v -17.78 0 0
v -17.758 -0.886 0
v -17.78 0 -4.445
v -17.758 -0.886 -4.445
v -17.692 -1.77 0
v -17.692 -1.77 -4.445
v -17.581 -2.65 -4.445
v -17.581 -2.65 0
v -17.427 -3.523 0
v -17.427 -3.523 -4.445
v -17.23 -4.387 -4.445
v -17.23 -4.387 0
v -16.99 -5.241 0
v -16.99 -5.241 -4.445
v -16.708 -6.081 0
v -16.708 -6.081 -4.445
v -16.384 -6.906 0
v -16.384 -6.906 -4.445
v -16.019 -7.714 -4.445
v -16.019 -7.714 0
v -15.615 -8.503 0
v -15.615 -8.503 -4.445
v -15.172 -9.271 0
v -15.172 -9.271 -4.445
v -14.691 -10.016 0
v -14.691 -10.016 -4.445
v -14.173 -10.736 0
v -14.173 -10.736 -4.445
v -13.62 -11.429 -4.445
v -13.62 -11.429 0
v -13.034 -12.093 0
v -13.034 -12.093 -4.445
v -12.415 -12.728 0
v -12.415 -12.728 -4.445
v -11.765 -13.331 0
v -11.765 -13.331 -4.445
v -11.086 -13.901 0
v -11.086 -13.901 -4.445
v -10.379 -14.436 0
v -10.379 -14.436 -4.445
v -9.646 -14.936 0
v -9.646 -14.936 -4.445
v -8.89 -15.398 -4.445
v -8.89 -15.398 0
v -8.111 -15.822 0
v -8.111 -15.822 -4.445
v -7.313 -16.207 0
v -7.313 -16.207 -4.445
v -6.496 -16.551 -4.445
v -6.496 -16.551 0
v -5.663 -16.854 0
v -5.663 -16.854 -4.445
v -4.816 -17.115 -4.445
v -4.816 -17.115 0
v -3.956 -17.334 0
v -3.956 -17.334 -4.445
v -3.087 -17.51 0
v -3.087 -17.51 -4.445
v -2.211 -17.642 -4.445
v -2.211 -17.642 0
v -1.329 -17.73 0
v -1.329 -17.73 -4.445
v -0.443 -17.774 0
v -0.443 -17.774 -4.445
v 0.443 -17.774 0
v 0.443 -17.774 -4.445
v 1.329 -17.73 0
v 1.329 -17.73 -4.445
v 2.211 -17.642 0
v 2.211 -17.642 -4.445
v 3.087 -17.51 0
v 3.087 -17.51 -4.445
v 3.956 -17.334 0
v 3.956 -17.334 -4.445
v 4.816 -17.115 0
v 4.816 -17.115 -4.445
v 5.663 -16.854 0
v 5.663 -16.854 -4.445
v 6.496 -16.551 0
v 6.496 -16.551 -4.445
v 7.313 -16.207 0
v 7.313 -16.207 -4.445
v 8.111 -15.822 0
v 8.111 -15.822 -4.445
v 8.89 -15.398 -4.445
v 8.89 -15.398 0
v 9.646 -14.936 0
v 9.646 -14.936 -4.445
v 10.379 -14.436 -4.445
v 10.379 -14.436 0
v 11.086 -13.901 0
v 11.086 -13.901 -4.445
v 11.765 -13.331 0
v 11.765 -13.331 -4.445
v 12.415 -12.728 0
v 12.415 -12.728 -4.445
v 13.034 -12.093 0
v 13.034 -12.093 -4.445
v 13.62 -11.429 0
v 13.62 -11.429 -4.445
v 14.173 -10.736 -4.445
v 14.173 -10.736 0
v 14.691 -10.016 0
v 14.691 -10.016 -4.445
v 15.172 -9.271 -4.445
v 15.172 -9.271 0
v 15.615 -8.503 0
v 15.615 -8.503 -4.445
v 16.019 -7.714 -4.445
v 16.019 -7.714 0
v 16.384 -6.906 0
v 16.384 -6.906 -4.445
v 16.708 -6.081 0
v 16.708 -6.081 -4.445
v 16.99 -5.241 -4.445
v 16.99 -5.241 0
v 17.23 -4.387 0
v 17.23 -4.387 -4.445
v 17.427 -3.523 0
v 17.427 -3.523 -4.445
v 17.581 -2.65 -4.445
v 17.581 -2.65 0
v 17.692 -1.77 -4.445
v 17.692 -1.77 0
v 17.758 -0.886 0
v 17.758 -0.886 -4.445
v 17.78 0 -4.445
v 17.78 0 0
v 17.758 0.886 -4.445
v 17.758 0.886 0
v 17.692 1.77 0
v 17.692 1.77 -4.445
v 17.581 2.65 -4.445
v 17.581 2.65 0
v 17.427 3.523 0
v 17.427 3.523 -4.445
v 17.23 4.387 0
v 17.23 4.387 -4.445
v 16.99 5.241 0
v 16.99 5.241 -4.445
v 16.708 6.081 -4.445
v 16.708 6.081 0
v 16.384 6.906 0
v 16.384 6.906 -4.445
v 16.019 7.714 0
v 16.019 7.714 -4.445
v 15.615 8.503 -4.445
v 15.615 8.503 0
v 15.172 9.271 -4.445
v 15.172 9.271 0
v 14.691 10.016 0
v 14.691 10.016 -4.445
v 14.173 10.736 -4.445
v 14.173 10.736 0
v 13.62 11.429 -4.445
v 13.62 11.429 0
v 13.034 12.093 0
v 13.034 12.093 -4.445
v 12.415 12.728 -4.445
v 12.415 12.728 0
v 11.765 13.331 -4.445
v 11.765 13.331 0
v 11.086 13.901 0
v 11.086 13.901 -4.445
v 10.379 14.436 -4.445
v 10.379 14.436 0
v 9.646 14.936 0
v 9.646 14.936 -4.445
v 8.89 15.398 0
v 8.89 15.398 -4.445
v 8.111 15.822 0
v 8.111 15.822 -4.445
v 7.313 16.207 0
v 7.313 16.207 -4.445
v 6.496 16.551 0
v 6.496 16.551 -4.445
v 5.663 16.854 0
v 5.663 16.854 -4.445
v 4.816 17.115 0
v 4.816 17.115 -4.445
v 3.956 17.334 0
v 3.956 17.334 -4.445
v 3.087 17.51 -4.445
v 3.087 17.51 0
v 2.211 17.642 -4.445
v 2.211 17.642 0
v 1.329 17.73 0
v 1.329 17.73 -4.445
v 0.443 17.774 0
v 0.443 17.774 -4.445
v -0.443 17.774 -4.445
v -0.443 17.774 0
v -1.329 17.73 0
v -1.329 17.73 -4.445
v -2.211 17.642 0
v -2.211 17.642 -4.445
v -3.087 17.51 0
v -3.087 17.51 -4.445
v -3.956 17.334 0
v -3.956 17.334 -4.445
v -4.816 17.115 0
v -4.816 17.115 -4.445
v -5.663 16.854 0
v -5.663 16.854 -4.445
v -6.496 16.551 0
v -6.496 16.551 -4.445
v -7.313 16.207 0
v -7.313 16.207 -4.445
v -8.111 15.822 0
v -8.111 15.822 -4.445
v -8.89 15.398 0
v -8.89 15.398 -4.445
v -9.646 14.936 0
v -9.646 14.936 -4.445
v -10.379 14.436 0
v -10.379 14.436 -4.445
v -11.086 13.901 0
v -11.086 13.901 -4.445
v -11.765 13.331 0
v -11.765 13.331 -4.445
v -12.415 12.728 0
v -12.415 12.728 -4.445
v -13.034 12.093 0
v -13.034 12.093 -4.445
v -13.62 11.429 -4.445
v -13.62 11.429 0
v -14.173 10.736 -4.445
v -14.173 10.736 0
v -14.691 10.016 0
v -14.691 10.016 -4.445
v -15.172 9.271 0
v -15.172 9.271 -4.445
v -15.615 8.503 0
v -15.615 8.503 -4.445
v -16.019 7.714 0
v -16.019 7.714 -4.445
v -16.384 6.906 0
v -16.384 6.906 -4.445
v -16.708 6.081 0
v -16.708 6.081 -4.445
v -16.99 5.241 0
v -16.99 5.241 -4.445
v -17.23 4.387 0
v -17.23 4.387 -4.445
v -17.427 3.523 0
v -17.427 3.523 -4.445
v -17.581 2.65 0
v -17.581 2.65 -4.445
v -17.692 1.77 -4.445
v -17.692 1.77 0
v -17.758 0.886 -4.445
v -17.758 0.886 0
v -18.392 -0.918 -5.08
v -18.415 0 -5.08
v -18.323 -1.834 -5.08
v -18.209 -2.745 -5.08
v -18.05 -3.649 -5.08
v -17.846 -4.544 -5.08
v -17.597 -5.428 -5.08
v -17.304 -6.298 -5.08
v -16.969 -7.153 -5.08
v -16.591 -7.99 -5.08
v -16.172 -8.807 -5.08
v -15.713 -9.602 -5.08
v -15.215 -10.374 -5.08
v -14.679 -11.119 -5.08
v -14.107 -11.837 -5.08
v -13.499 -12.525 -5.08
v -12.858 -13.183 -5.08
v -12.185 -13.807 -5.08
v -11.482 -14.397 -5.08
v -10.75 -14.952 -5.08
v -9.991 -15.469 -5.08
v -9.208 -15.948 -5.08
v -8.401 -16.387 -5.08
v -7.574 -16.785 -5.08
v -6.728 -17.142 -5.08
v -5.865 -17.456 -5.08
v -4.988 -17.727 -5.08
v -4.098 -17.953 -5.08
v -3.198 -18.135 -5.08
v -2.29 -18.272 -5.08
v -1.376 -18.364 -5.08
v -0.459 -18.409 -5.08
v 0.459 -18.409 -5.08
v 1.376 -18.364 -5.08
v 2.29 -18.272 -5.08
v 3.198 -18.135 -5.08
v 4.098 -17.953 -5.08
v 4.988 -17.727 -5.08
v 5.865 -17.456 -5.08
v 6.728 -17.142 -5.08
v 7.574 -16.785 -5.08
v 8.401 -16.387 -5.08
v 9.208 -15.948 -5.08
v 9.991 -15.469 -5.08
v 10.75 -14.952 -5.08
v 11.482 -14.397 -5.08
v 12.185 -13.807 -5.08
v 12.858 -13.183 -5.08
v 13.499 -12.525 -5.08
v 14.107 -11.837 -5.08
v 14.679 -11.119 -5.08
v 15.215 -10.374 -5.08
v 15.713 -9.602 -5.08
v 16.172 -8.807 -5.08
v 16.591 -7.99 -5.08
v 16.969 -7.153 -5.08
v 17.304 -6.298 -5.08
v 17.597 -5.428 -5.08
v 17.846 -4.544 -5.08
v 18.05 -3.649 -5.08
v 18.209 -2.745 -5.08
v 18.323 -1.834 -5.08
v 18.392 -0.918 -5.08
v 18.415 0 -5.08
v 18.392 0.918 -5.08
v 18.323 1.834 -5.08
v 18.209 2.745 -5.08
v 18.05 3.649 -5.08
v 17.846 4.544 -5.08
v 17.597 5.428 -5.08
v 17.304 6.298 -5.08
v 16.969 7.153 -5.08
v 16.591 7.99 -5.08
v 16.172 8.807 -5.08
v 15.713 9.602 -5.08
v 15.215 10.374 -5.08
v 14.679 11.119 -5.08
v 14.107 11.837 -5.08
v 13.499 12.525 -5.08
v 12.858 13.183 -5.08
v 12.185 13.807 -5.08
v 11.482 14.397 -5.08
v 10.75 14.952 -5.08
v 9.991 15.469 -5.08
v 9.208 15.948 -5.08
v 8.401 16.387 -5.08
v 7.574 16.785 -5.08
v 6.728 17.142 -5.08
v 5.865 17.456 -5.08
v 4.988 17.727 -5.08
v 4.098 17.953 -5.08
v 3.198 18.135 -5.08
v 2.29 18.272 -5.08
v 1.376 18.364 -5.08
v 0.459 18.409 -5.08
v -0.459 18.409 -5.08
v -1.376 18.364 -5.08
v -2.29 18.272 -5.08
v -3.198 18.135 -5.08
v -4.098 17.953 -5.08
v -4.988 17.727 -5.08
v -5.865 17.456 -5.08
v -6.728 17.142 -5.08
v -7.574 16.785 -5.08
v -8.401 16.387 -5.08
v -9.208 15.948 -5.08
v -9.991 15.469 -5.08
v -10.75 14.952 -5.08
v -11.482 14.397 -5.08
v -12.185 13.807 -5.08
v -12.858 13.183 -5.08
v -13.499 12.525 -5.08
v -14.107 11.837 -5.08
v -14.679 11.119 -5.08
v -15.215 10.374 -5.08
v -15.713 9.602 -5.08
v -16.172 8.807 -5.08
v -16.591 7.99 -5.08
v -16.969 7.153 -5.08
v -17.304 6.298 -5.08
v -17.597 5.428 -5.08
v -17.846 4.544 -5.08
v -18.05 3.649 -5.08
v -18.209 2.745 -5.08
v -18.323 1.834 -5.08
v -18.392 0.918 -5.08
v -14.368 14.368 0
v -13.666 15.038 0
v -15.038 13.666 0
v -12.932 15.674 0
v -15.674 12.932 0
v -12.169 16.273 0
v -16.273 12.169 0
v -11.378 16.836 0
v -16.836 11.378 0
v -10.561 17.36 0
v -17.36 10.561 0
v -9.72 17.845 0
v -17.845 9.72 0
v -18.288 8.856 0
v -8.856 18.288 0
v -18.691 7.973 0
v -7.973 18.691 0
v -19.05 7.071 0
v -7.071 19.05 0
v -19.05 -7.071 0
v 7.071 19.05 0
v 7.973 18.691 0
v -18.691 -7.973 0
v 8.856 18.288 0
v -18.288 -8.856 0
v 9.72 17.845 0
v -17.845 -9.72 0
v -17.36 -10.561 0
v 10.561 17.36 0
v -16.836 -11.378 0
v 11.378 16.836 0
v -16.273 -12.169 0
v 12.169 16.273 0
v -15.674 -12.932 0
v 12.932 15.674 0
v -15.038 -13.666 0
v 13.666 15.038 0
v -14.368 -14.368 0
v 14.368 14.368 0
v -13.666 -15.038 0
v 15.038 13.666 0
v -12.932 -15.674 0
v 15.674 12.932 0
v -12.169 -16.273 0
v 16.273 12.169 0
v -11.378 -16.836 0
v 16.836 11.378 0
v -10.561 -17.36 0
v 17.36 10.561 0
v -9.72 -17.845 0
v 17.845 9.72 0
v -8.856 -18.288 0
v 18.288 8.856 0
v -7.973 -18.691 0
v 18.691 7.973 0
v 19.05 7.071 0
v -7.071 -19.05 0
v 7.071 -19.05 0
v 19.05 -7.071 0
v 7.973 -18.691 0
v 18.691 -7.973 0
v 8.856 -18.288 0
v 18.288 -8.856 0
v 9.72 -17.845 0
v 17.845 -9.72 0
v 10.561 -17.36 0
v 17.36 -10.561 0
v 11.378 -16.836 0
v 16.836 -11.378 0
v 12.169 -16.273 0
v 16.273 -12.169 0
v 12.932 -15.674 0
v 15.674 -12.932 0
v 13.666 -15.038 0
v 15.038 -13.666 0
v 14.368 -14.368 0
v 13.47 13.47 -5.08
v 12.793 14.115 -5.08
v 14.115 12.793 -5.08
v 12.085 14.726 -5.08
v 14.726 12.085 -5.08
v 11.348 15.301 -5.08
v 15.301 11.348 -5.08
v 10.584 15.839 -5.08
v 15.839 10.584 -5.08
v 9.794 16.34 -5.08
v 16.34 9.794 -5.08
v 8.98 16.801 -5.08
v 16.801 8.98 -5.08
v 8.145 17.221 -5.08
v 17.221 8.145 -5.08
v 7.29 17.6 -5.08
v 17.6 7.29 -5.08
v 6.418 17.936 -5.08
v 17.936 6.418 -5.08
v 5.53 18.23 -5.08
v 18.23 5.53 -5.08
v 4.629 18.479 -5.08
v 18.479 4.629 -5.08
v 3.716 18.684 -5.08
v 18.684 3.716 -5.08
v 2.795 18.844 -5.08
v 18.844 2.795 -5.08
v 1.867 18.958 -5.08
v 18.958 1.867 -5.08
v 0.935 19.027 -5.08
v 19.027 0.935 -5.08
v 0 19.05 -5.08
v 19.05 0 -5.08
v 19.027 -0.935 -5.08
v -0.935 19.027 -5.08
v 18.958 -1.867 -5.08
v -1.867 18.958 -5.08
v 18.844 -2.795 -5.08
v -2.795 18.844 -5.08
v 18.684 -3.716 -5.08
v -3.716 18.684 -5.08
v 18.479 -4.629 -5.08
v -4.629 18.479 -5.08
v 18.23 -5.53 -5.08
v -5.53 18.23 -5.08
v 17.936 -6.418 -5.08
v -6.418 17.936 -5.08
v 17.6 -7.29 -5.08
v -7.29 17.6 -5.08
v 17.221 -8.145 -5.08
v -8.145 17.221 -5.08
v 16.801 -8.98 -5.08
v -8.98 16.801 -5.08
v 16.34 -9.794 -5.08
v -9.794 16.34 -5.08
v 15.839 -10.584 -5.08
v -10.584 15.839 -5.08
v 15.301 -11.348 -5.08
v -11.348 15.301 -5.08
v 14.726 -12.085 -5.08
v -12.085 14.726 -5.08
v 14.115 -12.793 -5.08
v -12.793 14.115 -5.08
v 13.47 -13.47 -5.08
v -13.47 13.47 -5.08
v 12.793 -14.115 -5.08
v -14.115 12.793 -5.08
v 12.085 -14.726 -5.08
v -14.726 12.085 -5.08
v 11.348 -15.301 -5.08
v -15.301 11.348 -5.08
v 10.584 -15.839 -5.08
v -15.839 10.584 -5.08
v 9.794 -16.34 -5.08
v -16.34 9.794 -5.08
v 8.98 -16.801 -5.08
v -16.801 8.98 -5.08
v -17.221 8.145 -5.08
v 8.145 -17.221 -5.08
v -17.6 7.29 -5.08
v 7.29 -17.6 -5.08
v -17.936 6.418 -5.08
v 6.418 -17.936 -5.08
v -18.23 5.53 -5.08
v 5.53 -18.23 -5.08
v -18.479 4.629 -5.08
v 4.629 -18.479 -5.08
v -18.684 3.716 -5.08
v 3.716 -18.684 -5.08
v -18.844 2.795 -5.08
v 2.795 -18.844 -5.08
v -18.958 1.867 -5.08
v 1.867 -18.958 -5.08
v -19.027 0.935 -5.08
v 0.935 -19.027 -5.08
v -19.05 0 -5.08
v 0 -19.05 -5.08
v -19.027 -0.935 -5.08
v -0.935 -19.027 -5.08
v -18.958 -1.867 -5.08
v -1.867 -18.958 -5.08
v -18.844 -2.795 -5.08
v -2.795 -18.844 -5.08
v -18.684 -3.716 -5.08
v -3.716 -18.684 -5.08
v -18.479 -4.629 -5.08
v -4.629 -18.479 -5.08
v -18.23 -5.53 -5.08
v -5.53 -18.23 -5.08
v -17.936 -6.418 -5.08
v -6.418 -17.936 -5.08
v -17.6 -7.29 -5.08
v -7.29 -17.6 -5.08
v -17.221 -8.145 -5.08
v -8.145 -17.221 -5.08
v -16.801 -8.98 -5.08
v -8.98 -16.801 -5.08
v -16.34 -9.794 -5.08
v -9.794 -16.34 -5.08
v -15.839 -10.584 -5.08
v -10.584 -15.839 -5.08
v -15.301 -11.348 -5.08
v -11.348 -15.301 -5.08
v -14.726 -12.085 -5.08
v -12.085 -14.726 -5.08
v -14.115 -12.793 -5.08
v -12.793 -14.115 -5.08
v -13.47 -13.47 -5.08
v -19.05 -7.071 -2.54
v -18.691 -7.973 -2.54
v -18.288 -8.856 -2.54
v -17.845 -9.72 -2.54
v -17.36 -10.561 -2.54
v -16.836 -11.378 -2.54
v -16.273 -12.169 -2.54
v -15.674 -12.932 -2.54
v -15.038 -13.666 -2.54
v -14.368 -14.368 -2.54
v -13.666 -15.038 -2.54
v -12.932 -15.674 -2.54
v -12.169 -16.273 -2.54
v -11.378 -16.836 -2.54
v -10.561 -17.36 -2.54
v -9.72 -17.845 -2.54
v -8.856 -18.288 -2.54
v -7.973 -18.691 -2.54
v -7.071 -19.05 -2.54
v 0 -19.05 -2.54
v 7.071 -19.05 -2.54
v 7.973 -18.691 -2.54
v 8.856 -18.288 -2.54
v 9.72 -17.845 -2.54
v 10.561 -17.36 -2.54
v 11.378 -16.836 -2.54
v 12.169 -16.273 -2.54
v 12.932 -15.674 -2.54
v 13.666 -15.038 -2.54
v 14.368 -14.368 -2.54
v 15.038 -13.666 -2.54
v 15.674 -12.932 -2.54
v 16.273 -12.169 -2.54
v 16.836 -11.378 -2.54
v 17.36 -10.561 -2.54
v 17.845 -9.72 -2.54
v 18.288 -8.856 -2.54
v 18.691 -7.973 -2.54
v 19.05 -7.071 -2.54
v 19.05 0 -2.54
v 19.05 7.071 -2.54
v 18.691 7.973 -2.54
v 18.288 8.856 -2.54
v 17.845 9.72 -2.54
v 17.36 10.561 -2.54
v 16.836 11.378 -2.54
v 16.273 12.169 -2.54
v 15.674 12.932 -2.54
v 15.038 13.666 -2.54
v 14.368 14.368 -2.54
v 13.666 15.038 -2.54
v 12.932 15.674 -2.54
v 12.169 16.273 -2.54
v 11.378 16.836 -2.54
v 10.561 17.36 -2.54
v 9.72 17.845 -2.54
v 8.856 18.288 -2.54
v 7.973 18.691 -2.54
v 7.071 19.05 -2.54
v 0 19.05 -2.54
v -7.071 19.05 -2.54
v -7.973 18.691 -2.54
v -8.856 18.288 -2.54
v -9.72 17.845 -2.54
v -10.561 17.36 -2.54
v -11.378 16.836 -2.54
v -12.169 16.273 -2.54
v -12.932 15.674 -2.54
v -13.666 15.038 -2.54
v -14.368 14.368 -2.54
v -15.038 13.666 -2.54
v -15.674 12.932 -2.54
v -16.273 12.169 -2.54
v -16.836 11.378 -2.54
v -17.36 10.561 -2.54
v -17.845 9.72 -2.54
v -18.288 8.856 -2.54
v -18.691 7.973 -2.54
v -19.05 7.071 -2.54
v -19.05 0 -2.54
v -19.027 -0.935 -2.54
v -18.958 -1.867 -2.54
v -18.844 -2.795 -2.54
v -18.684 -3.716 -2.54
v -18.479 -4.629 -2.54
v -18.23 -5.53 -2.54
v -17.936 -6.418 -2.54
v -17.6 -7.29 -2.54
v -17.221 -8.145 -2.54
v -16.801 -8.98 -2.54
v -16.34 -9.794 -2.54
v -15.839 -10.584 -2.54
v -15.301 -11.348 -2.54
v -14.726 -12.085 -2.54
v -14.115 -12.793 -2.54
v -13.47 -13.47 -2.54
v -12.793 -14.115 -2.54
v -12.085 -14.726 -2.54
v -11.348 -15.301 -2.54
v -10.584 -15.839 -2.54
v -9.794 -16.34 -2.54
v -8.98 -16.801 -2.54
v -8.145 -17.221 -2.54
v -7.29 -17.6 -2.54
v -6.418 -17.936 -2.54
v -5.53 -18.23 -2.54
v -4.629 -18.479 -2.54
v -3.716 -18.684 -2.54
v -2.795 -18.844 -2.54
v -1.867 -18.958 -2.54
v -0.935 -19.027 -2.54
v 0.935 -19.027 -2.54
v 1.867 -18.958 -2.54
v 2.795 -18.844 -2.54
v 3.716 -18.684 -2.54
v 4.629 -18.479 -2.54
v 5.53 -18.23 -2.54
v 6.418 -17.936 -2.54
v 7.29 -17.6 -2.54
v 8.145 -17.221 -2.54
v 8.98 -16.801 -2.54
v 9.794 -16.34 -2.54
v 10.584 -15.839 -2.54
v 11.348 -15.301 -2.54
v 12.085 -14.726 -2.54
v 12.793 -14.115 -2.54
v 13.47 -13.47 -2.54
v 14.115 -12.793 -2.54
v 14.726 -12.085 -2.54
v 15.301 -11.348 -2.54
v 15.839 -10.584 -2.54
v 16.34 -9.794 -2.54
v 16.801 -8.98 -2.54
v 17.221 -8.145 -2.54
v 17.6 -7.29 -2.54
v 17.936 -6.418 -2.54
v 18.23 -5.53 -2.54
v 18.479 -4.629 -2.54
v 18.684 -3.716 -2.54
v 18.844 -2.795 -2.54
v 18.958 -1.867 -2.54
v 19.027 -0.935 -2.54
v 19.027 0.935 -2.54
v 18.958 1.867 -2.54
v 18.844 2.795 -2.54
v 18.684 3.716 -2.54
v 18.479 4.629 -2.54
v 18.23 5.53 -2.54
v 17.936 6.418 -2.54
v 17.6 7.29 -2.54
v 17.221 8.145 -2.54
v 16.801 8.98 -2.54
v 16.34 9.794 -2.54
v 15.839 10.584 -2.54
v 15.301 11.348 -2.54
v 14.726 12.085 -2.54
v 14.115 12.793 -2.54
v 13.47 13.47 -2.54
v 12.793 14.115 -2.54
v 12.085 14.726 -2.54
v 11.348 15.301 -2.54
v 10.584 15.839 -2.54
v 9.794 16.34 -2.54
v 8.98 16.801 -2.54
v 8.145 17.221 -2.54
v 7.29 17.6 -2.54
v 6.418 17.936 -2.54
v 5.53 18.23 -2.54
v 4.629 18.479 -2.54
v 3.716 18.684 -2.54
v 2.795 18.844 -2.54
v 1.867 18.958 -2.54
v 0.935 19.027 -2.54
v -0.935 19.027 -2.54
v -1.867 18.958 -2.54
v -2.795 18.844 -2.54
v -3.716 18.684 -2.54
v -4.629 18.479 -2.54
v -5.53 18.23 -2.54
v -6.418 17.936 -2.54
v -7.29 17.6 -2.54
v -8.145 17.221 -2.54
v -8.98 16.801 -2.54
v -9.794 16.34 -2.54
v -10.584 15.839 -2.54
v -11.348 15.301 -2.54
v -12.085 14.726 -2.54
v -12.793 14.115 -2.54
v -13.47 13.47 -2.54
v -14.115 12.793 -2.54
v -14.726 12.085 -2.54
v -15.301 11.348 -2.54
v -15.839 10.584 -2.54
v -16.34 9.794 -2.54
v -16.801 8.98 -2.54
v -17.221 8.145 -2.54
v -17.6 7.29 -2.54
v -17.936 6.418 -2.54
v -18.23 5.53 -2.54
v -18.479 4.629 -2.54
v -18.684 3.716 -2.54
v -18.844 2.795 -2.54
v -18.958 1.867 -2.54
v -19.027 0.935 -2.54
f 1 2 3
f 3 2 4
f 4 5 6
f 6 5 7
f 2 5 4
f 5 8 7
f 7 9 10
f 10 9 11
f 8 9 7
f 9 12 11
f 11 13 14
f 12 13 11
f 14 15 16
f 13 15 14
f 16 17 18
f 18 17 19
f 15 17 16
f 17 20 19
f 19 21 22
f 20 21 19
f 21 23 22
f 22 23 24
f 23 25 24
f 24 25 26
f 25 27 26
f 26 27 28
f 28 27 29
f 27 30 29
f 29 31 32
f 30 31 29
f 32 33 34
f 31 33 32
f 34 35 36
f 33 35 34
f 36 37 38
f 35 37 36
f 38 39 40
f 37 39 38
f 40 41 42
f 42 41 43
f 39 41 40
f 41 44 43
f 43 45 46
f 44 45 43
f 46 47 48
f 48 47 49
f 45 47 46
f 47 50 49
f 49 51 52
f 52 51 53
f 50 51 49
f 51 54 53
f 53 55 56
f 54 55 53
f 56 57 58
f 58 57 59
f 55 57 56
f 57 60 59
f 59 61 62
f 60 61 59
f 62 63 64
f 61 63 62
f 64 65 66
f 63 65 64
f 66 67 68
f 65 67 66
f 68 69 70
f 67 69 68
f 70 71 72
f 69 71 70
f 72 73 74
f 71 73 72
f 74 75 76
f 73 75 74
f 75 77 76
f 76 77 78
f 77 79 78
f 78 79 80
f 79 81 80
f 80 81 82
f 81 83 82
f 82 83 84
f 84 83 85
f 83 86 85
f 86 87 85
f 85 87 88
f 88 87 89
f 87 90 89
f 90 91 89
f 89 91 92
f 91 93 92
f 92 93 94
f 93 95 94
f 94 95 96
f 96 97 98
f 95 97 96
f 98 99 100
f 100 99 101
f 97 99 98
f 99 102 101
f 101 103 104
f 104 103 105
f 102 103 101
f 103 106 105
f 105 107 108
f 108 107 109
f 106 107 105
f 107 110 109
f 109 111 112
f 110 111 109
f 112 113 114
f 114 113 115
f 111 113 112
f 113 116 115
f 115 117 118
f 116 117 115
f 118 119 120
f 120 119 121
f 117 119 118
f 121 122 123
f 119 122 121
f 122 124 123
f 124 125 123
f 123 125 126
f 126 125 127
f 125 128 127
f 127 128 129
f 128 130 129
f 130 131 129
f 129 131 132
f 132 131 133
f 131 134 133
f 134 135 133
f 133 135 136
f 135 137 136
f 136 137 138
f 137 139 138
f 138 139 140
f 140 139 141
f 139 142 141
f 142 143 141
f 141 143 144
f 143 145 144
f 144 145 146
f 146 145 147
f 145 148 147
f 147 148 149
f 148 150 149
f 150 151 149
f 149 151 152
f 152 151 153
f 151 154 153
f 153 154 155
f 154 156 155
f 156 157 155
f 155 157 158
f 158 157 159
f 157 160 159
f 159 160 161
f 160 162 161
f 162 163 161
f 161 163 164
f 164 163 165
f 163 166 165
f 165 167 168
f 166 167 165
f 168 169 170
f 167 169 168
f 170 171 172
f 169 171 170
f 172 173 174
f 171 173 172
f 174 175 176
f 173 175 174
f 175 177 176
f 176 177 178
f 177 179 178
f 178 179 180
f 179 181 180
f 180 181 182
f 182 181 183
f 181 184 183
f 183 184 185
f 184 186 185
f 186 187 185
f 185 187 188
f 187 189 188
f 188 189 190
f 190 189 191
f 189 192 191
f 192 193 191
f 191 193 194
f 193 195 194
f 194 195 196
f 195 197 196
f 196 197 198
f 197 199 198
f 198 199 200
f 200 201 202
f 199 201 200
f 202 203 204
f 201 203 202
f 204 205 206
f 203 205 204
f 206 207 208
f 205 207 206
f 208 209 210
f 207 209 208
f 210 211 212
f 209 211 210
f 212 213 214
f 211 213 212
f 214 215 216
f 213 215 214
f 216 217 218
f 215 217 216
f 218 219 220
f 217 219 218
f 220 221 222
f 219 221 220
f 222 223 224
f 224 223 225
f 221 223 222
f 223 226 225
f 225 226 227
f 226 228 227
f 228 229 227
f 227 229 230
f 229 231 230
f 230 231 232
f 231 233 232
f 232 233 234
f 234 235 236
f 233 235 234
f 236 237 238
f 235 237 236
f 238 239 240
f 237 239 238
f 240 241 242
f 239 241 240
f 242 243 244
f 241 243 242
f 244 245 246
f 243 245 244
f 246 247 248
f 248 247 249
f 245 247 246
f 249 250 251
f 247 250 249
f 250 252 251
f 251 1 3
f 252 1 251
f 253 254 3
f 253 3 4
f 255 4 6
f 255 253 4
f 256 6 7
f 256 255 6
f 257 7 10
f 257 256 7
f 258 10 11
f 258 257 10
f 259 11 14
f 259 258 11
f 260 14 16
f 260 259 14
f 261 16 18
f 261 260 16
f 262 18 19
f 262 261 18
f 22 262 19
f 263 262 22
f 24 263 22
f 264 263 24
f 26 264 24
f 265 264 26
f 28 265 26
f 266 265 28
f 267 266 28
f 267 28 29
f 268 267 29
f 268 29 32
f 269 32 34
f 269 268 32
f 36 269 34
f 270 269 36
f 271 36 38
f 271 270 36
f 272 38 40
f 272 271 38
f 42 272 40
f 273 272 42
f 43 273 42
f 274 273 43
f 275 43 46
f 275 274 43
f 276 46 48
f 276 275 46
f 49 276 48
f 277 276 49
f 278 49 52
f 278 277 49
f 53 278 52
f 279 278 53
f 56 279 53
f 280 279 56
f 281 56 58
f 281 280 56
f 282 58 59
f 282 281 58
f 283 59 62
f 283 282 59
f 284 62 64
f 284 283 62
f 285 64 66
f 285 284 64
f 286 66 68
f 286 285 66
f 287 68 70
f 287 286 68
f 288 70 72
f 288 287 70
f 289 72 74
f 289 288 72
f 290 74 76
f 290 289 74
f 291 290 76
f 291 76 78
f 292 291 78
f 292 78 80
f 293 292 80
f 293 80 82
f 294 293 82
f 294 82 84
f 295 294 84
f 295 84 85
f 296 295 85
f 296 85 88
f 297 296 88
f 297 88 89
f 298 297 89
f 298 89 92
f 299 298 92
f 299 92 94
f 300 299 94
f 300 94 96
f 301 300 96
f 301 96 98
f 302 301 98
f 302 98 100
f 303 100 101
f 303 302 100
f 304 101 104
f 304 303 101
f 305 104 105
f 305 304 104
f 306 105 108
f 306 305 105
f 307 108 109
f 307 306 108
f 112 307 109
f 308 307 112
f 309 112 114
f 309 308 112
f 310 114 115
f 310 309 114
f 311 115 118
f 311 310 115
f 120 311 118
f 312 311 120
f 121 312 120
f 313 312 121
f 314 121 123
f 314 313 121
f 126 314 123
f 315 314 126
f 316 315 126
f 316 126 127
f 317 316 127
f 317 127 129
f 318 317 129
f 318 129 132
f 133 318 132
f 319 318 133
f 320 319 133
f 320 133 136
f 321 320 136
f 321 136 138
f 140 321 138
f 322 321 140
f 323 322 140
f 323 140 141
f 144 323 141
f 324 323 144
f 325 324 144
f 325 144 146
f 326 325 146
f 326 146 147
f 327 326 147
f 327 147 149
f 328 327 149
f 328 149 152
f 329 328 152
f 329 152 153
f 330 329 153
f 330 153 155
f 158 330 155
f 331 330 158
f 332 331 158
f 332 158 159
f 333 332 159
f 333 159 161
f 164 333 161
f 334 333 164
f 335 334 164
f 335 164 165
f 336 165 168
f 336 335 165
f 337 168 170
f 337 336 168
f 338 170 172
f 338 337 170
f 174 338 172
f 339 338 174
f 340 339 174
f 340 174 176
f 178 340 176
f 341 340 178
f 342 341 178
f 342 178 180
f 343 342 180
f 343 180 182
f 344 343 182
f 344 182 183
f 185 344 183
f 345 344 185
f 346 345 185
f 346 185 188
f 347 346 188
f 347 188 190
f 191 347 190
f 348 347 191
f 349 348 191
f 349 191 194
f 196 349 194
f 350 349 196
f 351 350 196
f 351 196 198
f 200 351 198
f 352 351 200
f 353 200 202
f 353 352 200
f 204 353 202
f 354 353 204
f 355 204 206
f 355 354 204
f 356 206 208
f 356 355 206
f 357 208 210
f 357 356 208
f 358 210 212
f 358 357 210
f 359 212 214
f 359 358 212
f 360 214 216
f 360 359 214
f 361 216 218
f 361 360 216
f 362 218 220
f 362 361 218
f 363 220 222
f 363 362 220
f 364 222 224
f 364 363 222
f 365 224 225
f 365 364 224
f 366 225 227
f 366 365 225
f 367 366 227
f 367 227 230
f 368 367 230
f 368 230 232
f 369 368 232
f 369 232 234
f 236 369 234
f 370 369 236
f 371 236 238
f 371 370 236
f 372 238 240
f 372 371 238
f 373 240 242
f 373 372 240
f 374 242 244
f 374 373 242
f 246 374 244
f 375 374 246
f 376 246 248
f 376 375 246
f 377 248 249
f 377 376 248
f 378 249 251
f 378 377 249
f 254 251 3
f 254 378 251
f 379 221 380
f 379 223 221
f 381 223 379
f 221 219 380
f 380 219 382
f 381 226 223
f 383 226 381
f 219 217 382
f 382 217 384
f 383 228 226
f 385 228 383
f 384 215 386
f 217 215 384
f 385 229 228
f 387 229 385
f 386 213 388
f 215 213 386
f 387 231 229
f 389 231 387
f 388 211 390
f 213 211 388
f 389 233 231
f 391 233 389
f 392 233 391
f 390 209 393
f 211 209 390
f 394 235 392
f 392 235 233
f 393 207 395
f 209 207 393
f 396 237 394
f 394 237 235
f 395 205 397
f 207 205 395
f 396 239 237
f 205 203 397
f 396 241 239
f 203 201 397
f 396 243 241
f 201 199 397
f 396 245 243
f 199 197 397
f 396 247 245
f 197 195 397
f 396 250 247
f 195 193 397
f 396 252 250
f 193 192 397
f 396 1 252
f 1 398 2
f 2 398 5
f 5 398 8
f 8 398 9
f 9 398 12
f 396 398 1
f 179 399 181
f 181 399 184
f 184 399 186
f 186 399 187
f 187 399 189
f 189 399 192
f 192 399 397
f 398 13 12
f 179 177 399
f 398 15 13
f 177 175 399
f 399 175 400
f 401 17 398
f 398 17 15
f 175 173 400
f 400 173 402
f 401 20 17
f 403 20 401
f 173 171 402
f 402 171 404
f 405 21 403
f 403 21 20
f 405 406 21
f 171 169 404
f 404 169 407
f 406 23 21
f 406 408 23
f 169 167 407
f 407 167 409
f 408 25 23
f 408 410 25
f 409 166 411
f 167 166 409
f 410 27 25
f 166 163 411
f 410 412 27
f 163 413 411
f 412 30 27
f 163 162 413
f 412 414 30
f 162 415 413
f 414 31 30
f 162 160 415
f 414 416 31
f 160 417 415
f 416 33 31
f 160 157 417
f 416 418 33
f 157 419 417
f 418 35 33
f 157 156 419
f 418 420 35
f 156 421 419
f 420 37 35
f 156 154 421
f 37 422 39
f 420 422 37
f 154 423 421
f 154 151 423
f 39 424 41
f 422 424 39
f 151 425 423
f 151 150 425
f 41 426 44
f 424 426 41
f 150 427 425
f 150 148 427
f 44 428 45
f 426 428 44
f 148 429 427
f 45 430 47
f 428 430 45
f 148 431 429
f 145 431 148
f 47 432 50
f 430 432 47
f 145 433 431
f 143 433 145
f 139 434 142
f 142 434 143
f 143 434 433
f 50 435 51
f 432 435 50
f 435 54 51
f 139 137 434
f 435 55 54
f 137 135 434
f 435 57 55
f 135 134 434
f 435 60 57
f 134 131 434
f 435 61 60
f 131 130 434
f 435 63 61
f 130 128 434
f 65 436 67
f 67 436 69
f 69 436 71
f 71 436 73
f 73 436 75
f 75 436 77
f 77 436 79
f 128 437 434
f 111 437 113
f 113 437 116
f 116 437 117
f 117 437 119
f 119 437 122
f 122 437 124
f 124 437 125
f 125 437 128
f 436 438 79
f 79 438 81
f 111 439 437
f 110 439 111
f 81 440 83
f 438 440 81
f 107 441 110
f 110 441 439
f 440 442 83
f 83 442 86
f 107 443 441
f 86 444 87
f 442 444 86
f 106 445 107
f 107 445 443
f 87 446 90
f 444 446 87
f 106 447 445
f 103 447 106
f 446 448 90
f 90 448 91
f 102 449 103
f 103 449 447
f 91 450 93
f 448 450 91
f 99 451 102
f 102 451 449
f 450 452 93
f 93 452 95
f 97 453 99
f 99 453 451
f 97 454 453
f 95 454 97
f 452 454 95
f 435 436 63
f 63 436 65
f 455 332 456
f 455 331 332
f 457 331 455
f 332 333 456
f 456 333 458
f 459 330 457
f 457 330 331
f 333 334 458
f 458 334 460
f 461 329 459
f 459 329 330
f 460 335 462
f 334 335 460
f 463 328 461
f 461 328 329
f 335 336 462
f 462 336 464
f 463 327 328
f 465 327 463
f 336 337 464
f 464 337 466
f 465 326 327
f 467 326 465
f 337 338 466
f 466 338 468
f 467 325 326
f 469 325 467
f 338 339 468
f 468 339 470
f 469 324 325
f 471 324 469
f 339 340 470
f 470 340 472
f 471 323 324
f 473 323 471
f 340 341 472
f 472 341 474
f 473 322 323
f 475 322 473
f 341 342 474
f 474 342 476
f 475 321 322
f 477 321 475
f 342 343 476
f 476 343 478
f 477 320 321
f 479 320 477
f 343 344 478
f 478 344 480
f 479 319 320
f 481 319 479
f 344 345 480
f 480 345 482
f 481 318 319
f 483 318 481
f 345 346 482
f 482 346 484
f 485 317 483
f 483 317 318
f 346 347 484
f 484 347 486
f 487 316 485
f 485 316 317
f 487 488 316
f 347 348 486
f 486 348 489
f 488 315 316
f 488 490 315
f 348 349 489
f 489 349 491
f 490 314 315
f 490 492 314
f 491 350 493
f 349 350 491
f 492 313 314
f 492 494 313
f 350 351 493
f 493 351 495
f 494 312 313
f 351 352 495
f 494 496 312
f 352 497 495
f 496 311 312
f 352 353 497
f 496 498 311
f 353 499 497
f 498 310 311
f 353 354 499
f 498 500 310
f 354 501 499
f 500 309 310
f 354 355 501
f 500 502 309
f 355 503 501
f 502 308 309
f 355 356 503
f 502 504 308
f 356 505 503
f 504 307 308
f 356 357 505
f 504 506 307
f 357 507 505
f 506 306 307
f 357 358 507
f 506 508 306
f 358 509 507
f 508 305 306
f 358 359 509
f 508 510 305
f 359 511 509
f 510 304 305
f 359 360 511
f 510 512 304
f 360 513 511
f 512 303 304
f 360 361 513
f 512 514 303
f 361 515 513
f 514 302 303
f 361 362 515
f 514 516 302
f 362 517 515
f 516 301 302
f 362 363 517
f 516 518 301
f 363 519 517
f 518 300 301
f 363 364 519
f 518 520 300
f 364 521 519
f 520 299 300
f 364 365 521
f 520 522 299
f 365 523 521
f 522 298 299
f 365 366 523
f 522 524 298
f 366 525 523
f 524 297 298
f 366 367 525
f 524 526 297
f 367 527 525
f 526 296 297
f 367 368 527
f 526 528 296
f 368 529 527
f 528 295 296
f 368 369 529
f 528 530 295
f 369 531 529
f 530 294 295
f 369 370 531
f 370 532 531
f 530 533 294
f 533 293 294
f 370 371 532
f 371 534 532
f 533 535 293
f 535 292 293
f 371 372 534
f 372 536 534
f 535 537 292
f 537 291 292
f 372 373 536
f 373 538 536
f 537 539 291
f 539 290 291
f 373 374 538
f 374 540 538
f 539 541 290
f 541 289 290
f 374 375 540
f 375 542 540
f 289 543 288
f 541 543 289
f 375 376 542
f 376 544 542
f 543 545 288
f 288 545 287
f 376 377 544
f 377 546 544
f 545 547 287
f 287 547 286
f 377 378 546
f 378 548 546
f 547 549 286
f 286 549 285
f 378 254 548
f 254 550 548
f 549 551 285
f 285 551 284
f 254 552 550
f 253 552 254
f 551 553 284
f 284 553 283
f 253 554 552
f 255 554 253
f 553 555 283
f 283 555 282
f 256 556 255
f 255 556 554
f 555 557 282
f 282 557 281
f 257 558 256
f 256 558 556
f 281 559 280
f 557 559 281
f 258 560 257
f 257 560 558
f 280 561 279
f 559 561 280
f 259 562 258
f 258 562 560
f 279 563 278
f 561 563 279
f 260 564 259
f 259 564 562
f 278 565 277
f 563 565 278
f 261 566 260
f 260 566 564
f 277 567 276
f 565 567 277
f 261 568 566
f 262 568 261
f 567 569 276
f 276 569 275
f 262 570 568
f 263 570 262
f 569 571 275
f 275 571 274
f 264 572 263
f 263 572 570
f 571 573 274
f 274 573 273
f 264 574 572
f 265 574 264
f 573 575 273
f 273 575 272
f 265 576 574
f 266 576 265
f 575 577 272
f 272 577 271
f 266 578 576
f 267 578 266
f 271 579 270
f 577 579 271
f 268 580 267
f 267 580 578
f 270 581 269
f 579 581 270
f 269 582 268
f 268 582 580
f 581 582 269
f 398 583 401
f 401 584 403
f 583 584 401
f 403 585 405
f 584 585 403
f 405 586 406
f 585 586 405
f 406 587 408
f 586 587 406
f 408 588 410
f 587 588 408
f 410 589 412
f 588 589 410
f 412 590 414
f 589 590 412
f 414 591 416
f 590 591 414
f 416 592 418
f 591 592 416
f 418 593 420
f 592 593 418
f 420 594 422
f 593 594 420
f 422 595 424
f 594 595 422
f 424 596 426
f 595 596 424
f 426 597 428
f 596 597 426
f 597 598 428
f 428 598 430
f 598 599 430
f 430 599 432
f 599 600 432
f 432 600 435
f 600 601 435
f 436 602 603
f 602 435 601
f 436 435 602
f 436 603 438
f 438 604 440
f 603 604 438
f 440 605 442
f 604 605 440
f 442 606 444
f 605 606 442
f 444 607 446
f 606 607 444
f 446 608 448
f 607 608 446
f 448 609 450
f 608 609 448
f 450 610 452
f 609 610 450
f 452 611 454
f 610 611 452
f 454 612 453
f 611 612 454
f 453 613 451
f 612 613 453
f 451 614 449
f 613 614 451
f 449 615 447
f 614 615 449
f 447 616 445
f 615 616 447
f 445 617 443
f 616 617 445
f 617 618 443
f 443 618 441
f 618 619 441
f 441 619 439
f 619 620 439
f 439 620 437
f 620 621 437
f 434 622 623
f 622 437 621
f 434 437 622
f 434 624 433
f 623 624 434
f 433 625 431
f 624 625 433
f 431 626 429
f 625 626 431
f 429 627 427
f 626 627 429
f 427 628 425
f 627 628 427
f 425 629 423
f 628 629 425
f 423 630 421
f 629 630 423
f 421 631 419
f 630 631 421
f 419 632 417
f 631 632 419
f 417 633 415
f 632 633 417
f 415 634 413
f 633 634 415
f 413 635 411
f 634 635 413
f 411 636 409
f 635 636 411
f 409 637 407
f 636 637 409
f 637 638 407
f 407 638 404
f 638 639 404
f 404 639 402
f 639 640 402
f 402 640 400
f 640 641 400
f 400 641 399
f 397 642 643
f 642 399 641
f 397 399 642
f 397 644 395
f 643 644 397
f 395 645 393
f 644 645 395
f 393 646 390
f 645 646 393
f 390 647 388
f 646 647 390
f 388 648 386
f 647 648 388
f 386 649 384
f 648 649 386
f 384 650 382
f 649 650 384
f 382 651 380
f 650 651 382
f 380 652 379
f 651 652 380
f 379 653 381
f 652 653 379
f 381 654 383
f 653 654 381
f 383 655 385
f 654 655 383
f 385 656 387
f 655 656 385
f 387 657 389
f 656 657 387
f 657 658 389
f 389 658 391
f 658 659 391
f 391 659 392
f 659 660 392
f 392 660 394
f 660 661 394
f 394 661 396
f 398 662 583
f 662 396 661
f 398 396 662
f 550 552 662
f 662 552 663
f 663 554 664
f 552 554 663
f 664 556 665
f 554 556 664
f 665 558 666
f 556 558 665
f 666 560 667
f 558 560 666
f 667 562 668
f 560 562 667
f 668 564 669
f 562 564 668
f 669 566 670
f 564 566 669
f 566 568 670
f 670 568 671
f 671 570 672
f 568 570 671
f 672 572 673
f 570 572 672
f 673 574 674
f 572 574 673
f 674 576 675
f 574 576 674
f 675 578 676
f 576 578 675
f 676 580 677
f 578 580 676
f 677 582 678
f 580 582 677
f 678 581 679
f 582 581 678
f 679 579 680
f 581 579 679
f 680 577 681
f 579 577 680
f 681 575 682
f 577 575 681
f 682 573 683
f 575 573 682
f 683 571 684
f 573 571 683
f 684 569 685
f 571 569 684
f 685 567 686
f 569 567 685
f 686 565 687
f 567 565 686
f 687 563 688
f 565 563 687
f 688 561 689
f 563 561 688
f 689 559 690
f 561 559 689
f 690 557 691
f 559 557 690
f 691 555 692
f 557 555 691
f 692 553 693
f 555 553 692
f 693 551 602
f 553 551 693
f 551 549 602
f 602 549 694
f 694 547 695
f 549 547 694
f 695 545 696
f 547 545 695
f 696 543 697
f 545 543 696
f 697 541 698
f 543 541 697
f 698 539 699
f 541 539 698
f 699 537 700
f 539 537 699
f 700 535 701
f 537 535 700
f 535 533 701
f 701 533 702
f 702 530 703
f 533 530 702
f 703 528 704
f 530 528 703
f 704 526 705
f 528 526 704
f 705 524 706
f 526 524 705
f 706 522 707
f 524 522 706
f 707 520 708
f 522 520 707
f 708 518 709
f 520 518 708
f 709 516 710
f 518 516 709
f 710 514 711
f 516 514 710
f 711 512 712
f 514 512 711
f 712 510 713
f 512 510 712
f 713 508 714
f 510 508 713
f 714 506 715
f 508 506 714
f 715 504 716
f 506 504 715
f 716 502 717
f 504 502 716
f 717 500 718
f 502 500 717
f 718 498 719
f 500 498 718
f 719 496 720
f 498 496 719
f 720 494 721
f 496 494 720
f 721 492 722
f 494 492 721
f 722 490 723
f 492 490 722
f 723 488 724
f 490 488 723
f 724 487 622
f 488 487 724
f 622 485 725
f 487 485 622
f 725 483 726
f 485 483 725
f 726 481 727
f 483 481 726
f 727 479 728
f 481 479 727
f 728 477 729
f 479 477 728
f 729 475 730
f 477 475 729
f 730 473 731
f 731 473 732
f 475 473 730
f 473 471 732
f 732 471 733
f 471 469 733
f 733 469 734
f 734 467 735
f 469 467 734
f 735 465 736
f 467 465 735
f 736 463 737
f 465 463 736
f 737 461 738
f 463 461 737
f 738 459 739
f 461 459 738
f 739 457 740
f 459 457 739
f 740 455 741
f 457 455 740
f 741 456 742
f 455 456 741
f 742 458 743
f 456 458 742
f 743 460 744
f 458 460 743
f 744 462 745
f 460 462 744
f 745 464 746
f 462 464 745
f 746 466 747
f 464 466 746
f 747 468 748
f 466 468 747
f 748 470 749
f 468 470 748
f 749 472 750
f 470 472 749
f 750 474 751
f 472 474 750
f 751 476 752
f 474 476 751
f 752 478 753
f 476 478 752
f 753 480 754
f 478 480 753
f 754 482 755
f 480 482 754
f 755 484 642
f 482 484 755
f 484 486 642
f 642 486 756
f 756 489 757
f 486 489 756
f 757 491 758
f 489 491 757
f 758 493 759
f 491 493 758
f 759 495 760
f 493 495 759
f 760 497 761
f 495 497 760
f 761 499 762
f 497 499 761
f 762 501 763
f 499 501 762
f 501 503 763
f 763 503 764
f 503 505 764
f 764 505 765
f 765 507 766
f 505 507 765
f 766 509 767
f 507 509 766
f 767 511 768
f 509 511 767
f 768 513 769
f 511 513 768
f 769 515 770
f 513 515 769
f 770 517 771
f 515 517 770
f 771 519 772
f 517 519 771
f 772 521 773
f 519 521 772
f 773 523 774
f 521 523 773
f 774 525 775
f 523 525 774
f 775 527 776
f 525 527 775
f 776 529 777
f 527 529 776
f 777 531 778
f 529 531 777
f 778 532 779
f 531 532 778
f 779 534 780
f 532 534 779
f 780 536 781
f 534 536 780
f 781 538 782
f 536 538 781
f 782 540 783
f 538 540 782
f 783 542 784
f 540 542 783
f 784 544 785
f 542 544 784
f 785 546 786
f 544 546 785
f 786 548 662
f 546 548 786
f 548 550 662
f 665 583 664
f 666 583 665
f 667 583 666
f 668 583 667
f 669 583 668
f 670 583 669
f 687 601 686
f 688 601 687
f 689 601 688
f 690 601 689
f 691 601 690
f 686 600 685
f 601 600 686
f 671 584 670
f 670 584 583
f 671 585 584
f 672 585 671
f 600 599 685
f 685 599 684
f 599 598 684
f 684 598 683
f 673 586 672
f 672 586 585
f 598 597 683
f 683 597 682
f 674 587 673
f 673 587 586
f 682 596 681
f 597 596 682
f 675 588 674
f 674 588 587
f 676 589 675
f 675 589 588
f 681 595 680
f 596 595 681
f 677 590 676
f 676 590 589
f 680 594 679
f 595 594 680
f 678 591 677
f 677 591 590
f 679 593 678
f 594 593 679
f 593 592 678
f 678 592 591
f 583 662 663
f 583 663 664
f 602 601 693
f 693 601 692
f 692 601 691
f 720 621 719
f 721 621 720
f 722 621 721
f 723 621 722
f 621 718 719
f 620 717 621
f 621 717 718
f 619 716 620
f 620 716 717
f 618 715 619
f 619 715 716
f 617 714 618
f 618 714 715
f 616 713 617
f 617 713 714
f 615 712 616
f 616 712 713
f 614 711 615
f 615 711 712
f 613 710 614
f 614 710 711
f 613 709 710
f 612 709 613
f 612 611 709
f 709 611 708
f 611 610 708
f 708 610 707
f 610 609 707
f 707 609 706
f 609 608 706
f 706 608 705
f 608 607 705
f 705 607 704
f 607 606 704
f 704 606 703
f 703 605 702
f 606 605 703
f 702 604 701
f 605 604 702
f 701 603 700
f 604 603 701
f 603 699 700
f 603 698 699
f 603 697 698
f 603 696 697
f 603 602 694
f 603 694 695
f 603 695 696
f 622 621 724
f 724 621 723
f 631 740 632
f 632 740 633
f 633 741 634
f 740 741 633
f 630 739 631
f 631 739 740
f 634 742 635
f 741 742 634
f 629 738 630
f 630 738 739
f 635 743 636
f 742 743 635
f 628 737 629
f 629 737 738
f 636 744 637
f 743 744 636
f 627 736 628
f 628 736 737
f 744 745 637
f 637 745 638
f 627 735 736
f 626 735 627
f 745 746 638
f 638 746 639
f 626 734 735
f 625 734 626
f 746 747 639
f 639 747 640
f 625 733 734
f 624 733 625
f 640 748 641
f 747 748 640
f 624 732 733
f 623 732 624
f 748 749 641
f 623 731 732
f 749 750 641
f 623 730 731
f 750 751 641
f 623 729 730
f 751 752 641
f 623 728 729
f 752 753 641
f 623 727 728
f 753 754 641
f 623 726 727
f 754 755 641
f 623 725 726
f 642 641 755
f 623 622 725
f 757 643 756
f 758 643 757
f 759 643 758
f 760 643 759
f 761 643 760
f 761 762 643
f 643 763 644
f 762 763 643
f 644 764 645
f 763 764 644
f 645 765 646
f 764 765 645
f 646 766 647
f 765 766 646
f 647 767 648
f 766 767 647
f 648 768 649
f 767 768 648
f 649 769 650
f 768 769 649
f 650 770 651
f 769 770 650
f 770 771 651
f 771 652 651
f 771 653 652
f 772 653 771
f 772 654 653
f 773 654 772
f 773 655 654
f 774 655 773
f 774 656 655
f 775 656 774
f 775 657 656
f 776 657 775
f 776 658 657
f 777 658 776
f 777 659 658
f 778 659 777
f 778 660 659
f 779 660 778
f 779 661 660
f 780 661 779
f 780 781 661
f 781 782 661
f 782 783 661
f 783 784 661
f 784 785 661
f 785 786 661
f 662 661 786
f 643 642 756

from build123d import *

# Parameters (mm, degrees)
SKETCH001_W   = 50.8
SKETCH001_H   = 50.8
SKETCH001_W_2 = 38.1
SKETCH001_H_2 = 38.1
POCKET_DEPTH  = 5.08
CHAMFER_SIZE  = 0.635


with BuildPart() as part:
    # Sketch → Revolution (revolve)
    with BuildSketch(Plane.XZ):
        Polygon((-17.78, 0), (-20.32, 0), (-20.32, -2.54), (-19.05, -2.54), (-19.05, -5.08), (-17.78, -5.08), align=None)
    revolve(axis=Axis((0, 0, 0), (0, 0, 1)))

    # Sketch001 → Pocket (cut)
    with BuildSketch(Plane.XY):
        Rectangle(SKETCH001_W, SKETCH001_H)
        Rectangle(SKETCH001_W_2, SKETCH001_H_2, mode=Mode.SUBTRACT)
    extrude(amount=-POCKET_DEPTH, mode=Mode.SUBTRACT)

    # Chamfer
    chamfer_edges = [part.edges().sort_by_distance(p)[0] for p in [
        (17.78, 0, -5.08),
    ]]
    chamfer(chamfer_edges, length=CHAMFER_SIZE)


solid = part.part
